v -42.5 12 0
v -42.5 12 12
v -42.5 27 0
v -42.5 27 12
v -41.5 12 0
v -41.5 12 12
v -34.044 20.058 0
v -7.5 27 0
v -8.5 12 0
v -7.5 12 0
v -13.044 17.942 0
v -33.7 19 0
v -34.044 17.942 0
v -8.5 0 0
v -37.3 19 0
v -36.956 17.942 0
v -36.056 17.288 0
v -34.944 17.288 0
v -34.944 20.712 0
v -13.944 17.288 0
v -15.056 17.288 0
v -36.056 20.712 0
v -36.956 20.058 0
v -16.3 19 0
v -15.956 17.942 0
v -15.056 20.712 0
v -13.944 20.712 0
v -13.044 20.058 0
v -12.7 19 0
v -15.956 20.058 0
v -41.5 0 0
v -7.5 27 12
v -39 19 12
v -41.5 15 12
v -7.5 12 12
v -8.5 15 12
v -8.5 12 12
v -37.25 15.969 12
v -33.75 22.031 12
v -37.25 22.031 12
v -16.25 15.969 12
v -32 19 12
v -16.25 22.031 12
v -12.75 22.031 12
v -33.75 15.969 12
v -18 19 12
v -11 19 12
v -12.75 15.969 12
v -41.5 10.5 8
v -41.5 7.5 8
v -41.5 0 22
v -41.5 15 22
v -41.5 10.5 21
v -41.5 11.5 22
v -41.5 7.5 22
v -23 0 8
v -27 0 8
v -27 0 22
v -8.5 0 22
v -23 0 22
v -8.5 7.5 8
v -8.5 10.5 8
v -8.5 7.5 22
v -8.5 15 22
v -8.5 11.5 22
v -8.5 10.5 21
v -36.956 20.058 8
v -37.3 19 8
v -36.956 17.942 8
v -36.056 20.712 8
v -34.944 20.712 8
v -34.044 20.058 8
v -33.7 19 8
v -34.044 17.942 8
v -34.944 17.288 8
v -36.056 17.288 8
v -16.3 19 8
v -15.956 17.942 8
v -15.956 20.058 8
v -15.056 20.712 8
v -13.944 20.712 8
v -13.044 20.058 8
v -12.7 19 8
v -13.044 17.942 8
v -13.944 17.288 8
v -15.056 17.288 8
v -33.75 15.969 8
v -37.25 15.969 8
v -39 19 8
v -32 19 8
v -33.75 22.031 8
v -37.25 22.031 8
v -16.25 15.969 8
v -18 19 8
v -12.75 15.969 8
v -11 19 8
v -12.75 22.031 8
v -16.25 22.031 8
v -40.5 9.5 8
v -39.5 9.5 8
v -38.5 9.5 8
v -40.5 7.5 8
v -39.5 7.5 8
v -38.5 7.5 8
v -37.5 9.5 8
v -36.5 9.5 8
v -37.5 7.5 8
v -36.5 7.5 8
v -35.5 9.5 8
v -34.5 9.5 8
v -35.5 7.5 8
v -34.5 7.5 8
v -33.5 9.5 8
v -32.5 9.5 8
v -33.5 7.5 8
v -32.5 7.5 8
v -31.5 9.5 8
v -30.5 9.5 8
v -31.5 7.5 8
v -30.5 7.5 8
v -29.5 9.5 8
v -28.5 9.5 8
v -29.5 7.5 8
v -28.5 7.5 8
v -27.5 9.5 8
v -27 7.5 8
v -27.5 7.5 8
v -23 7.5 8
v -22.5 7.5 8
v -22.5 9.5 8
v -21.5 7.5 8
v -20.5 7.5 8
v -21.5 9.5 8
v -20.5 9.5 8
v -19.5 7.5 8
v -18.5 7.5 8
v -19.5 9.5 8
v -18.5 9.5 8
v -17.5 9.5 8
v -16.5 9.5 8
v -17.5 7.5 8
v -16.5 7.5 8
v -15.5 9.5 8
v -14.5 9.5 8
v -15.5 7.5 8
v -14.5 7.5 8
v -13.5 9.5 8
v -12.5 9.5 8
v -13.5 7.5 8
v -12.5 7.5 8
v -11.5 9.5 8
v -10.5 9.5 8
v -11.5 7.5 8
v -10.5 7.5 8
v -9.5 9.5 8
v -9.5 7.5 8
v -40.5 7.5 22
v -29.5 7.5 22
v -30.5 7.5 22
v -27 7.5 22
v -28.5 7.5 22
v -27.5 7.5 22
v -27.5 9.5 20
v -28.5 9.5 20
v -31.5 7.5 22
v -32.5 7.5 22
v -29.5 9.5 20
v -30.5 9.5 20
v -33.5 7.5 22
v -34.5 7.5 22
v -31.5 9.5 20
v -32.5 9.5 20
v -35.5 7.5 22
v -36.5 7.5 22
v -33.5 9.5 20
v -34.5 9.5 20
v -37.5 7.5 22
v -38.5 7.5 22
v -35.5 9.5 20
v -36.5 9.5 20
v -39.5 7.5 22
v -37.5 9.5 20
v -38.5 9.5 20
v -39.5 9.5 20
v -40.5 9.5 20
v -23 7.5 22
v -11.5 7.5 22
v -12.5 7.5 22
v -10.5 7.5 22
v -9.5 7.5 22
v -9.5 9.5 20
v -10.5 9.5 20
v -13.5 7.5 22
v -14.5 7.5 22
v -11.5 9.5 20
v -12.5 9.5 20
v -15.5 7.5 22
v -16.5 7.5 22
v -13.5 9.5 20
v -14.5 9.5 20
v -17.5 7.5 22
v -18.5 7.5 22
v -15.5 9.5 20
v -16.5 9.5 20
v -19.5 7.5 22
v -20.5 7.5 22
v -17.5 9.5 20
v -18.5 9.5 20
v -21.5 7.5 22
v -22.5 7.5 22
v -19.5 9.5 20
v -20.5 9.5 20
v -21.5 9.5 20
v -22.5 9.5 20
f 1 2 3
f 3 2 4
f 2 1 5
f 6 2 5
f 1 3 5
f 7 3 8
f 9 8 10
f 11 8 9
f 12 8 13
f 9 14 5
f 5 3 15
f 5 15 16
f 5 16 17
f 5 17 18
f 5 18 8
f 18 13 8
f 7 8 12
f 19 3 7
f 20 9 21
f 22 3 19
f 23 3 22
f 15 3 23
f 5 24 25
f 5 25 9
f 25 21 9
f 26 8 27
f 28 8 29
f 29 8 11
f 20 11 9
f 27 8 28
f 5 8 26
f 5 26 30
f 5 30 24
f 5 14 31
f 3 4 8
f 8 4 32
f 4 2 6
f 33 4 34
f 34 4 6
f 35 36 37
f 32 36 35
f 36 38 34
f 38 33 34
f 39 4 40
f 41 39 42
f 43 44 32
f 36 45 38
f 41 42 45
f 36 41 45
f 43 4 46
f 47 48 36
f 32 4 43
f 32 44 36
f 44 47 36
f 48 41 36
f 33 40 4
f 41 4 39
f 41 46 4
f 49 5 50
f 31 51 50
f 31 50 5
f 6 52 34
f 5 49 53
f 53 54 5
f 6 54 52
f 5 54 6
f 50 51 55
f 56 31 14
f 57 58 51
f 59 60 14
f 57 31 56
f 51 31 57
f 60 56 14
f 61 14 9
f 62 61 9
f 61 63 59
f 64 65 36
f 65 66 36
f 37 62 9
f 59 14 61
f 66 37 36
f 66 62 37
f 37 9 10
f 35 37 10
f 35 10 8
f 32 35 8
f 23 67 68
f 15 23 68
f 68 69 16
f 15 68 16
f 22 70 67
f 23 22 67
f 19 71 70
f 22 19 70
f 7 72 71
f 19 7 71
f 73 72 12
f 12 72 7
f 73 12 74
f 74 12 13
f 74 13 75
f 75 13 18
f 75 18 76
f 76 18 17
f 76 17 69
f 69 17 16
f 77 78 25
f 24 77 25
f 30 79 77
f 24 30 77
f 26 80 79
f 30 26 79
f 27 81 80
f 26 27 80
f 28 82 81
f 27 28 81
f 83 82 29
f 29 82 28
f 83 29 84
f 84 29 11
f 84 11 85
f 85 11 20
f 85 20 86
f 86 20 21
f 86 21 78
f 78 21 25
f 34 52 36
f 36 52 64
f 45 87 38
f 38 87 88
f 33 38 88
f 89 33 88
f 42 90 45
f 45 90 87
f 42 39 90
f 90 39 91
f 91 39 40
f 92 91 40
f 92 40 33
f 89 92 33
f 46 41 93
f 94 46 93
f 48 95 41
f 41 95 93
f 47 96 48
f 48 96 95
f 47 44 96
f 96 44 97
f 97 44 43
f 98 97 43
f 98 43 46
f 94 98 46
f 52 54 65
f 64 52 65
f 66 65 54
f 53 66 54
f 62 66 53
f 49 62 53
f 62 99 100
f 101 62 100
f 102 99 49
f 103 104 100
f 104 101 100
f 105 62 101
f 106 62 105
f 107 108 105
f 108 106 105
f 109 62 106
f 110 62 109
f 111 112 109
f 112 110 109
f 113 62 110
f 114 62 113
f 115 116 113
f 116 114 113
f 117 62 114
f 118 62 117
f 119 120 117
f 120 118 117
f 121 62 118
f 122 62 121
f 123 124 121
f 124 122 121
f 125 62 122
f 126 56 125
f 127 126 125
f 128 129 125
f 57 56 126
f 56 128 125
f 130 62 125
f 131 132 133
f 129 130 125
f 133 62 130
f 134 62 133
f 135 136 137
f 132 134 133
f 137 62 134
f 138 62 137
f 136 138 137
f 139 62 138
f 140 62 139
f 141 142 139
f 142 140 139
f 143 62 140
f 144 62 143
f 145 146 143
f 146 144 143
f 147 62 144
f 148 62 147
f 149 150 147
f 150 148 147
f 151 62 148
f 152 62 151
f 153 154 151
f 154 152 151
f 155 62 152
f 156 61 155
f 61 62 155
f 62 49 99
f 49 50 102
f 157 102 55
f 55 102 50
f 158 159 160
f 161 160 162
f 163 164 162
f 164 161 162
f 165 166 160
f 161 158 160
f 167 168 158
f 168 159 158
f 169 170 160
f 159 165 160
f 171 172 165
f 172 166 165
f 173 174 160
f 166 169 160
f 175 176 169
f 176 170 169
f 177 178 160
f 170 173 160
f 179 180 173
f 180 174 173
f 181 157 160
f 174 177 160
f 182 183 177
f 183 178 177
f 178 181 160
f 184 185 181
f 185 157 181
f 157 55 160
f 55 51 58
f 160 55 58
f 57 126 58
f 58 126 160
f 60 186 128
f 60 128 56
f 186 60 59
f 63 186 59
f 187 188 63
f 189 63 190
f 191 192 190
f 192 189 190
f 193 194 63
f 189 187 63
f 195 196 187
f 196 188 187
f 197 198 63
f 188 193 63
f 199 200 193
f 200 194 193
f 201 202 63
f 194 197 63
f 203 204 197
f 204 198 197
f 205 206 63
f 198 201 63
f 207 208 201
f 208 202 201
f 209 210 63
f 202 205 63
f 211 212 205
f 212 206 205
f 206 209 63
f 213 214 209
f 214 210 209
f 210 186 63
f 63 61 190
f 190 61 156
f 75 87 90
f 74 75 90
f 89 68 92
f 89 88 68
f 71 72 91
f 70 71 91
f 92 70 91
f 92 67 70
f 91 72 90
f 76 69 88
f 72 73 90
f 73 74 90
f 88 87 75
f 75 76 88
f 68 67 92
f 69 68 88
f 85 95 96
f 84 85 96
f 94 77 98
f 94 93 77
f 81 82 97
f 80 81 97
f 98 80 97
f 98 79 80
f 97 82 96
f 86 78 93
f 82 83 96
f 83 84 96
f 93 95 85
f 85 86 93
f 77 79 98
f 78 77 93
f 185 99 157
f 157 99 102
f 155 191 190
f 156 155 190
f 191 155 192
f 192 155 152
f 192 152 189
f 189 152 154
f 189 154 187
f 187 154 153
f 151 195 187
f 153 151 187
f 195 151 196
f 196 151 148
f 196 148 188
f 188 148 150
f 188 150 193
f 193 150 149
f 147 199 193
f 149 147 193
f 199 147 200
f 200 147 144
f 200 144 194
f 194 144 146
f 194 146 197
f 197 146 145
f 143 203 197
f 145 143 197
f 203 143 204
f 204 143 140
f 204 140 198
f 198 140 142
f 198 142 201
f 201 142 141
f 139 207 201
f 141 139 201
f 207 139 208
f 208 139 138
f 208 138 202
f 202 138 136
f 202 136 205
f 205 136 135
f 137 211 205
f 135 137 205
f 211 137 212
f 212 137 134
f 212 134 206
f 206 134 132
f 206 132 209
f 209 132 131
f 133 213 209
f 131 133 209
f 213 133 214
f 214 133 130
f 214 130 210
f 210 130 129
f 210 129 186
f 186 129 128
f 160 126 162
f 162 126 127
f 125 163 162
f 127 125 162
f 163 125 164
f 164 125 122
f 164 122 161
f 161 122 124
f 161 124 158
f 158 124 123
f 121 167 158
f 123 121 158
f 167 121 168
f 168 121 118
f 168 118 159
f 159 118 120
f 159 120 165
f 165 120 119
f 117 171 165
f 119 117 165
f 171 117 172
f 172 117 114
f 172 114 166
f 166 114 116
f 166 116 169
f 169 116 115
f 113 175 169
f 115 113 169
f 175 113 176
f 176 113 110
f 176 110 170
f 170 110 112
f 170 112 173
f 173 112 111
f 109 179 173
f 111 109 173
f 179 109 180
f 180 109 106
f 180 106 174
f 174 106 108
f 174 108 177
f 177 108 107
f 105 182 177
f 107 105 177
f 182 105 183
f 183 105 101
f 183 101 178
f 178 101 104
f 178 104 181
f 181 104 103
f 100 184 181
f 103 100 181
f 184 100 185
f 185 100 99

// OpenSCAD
// PRUSA iteration3
// Y belt holder
// GNU GPL v3
// Josef Průša <iam@josefprusa.cz> and contributors
// http://www.reprap.org/wiki/Prusa_Mendel
// http://prusamendel.org

// Adapted for Wilson TS by mrice

belt_spacing = 2.0; // gt2=2mm
tooth_w      = 1; 
min_h = 8; // belt starts this far from bottom of bed
max_h = 22; // belt can be up to this far from bottom of bed
nut_trap_w = 6;

module belt_holder_base(){
 translate([-33-8.5,0,0]) cube([33,15,max_h]); // this is the part the belt is cut into
 translate([-33-9.5,12,0]) cube([35,15,12]); 
}

module belt_holder_beltcut(){
 position_tweak=.5;
 // Belt slit
 translate([-66,-0.5+10,0]) cube([67,1,15]);
 // Smooth insert cutout
 translate([-66,-0.5+10,12]) rotate([45,0,0]) cube([67,15,15]);
 // Individual teeth
 for ( i = [0 : 23] ){
  translate([0-(i*belt_spacing)+position_tweak,-0.5+8,0]) cube([tooth_w,3,15]);
 }
 // Middle opening
 translate([-2-25,-1,0]) cube([4,11,15]);	
}

module belt_holder_holes(){
  translate([0,19,-2]) { 
    translate([-14.5,0,0]) {
          cylinder(h=30, r=1.8, $fn=10);
          translate([0,0,10]) cylinder(h=30, r=nut_trap_w/2+.5, $fn=6);
    }
    translate([-35.5,0,0]) {
          cylinder(h=30, r=1.8, $fn=10);
          translate([0,0,10]) cylinder(h=30, r=nut_trap_w/2+.5, $fn=6);
    }
  }
}

// Final part
module belt_holder(){
 difference(){
  belt_holder_base();
  translate([0,0,min_h]) belt_holder_beltcut();
  belt_holder_holes();
 }
}

belt_holder();
